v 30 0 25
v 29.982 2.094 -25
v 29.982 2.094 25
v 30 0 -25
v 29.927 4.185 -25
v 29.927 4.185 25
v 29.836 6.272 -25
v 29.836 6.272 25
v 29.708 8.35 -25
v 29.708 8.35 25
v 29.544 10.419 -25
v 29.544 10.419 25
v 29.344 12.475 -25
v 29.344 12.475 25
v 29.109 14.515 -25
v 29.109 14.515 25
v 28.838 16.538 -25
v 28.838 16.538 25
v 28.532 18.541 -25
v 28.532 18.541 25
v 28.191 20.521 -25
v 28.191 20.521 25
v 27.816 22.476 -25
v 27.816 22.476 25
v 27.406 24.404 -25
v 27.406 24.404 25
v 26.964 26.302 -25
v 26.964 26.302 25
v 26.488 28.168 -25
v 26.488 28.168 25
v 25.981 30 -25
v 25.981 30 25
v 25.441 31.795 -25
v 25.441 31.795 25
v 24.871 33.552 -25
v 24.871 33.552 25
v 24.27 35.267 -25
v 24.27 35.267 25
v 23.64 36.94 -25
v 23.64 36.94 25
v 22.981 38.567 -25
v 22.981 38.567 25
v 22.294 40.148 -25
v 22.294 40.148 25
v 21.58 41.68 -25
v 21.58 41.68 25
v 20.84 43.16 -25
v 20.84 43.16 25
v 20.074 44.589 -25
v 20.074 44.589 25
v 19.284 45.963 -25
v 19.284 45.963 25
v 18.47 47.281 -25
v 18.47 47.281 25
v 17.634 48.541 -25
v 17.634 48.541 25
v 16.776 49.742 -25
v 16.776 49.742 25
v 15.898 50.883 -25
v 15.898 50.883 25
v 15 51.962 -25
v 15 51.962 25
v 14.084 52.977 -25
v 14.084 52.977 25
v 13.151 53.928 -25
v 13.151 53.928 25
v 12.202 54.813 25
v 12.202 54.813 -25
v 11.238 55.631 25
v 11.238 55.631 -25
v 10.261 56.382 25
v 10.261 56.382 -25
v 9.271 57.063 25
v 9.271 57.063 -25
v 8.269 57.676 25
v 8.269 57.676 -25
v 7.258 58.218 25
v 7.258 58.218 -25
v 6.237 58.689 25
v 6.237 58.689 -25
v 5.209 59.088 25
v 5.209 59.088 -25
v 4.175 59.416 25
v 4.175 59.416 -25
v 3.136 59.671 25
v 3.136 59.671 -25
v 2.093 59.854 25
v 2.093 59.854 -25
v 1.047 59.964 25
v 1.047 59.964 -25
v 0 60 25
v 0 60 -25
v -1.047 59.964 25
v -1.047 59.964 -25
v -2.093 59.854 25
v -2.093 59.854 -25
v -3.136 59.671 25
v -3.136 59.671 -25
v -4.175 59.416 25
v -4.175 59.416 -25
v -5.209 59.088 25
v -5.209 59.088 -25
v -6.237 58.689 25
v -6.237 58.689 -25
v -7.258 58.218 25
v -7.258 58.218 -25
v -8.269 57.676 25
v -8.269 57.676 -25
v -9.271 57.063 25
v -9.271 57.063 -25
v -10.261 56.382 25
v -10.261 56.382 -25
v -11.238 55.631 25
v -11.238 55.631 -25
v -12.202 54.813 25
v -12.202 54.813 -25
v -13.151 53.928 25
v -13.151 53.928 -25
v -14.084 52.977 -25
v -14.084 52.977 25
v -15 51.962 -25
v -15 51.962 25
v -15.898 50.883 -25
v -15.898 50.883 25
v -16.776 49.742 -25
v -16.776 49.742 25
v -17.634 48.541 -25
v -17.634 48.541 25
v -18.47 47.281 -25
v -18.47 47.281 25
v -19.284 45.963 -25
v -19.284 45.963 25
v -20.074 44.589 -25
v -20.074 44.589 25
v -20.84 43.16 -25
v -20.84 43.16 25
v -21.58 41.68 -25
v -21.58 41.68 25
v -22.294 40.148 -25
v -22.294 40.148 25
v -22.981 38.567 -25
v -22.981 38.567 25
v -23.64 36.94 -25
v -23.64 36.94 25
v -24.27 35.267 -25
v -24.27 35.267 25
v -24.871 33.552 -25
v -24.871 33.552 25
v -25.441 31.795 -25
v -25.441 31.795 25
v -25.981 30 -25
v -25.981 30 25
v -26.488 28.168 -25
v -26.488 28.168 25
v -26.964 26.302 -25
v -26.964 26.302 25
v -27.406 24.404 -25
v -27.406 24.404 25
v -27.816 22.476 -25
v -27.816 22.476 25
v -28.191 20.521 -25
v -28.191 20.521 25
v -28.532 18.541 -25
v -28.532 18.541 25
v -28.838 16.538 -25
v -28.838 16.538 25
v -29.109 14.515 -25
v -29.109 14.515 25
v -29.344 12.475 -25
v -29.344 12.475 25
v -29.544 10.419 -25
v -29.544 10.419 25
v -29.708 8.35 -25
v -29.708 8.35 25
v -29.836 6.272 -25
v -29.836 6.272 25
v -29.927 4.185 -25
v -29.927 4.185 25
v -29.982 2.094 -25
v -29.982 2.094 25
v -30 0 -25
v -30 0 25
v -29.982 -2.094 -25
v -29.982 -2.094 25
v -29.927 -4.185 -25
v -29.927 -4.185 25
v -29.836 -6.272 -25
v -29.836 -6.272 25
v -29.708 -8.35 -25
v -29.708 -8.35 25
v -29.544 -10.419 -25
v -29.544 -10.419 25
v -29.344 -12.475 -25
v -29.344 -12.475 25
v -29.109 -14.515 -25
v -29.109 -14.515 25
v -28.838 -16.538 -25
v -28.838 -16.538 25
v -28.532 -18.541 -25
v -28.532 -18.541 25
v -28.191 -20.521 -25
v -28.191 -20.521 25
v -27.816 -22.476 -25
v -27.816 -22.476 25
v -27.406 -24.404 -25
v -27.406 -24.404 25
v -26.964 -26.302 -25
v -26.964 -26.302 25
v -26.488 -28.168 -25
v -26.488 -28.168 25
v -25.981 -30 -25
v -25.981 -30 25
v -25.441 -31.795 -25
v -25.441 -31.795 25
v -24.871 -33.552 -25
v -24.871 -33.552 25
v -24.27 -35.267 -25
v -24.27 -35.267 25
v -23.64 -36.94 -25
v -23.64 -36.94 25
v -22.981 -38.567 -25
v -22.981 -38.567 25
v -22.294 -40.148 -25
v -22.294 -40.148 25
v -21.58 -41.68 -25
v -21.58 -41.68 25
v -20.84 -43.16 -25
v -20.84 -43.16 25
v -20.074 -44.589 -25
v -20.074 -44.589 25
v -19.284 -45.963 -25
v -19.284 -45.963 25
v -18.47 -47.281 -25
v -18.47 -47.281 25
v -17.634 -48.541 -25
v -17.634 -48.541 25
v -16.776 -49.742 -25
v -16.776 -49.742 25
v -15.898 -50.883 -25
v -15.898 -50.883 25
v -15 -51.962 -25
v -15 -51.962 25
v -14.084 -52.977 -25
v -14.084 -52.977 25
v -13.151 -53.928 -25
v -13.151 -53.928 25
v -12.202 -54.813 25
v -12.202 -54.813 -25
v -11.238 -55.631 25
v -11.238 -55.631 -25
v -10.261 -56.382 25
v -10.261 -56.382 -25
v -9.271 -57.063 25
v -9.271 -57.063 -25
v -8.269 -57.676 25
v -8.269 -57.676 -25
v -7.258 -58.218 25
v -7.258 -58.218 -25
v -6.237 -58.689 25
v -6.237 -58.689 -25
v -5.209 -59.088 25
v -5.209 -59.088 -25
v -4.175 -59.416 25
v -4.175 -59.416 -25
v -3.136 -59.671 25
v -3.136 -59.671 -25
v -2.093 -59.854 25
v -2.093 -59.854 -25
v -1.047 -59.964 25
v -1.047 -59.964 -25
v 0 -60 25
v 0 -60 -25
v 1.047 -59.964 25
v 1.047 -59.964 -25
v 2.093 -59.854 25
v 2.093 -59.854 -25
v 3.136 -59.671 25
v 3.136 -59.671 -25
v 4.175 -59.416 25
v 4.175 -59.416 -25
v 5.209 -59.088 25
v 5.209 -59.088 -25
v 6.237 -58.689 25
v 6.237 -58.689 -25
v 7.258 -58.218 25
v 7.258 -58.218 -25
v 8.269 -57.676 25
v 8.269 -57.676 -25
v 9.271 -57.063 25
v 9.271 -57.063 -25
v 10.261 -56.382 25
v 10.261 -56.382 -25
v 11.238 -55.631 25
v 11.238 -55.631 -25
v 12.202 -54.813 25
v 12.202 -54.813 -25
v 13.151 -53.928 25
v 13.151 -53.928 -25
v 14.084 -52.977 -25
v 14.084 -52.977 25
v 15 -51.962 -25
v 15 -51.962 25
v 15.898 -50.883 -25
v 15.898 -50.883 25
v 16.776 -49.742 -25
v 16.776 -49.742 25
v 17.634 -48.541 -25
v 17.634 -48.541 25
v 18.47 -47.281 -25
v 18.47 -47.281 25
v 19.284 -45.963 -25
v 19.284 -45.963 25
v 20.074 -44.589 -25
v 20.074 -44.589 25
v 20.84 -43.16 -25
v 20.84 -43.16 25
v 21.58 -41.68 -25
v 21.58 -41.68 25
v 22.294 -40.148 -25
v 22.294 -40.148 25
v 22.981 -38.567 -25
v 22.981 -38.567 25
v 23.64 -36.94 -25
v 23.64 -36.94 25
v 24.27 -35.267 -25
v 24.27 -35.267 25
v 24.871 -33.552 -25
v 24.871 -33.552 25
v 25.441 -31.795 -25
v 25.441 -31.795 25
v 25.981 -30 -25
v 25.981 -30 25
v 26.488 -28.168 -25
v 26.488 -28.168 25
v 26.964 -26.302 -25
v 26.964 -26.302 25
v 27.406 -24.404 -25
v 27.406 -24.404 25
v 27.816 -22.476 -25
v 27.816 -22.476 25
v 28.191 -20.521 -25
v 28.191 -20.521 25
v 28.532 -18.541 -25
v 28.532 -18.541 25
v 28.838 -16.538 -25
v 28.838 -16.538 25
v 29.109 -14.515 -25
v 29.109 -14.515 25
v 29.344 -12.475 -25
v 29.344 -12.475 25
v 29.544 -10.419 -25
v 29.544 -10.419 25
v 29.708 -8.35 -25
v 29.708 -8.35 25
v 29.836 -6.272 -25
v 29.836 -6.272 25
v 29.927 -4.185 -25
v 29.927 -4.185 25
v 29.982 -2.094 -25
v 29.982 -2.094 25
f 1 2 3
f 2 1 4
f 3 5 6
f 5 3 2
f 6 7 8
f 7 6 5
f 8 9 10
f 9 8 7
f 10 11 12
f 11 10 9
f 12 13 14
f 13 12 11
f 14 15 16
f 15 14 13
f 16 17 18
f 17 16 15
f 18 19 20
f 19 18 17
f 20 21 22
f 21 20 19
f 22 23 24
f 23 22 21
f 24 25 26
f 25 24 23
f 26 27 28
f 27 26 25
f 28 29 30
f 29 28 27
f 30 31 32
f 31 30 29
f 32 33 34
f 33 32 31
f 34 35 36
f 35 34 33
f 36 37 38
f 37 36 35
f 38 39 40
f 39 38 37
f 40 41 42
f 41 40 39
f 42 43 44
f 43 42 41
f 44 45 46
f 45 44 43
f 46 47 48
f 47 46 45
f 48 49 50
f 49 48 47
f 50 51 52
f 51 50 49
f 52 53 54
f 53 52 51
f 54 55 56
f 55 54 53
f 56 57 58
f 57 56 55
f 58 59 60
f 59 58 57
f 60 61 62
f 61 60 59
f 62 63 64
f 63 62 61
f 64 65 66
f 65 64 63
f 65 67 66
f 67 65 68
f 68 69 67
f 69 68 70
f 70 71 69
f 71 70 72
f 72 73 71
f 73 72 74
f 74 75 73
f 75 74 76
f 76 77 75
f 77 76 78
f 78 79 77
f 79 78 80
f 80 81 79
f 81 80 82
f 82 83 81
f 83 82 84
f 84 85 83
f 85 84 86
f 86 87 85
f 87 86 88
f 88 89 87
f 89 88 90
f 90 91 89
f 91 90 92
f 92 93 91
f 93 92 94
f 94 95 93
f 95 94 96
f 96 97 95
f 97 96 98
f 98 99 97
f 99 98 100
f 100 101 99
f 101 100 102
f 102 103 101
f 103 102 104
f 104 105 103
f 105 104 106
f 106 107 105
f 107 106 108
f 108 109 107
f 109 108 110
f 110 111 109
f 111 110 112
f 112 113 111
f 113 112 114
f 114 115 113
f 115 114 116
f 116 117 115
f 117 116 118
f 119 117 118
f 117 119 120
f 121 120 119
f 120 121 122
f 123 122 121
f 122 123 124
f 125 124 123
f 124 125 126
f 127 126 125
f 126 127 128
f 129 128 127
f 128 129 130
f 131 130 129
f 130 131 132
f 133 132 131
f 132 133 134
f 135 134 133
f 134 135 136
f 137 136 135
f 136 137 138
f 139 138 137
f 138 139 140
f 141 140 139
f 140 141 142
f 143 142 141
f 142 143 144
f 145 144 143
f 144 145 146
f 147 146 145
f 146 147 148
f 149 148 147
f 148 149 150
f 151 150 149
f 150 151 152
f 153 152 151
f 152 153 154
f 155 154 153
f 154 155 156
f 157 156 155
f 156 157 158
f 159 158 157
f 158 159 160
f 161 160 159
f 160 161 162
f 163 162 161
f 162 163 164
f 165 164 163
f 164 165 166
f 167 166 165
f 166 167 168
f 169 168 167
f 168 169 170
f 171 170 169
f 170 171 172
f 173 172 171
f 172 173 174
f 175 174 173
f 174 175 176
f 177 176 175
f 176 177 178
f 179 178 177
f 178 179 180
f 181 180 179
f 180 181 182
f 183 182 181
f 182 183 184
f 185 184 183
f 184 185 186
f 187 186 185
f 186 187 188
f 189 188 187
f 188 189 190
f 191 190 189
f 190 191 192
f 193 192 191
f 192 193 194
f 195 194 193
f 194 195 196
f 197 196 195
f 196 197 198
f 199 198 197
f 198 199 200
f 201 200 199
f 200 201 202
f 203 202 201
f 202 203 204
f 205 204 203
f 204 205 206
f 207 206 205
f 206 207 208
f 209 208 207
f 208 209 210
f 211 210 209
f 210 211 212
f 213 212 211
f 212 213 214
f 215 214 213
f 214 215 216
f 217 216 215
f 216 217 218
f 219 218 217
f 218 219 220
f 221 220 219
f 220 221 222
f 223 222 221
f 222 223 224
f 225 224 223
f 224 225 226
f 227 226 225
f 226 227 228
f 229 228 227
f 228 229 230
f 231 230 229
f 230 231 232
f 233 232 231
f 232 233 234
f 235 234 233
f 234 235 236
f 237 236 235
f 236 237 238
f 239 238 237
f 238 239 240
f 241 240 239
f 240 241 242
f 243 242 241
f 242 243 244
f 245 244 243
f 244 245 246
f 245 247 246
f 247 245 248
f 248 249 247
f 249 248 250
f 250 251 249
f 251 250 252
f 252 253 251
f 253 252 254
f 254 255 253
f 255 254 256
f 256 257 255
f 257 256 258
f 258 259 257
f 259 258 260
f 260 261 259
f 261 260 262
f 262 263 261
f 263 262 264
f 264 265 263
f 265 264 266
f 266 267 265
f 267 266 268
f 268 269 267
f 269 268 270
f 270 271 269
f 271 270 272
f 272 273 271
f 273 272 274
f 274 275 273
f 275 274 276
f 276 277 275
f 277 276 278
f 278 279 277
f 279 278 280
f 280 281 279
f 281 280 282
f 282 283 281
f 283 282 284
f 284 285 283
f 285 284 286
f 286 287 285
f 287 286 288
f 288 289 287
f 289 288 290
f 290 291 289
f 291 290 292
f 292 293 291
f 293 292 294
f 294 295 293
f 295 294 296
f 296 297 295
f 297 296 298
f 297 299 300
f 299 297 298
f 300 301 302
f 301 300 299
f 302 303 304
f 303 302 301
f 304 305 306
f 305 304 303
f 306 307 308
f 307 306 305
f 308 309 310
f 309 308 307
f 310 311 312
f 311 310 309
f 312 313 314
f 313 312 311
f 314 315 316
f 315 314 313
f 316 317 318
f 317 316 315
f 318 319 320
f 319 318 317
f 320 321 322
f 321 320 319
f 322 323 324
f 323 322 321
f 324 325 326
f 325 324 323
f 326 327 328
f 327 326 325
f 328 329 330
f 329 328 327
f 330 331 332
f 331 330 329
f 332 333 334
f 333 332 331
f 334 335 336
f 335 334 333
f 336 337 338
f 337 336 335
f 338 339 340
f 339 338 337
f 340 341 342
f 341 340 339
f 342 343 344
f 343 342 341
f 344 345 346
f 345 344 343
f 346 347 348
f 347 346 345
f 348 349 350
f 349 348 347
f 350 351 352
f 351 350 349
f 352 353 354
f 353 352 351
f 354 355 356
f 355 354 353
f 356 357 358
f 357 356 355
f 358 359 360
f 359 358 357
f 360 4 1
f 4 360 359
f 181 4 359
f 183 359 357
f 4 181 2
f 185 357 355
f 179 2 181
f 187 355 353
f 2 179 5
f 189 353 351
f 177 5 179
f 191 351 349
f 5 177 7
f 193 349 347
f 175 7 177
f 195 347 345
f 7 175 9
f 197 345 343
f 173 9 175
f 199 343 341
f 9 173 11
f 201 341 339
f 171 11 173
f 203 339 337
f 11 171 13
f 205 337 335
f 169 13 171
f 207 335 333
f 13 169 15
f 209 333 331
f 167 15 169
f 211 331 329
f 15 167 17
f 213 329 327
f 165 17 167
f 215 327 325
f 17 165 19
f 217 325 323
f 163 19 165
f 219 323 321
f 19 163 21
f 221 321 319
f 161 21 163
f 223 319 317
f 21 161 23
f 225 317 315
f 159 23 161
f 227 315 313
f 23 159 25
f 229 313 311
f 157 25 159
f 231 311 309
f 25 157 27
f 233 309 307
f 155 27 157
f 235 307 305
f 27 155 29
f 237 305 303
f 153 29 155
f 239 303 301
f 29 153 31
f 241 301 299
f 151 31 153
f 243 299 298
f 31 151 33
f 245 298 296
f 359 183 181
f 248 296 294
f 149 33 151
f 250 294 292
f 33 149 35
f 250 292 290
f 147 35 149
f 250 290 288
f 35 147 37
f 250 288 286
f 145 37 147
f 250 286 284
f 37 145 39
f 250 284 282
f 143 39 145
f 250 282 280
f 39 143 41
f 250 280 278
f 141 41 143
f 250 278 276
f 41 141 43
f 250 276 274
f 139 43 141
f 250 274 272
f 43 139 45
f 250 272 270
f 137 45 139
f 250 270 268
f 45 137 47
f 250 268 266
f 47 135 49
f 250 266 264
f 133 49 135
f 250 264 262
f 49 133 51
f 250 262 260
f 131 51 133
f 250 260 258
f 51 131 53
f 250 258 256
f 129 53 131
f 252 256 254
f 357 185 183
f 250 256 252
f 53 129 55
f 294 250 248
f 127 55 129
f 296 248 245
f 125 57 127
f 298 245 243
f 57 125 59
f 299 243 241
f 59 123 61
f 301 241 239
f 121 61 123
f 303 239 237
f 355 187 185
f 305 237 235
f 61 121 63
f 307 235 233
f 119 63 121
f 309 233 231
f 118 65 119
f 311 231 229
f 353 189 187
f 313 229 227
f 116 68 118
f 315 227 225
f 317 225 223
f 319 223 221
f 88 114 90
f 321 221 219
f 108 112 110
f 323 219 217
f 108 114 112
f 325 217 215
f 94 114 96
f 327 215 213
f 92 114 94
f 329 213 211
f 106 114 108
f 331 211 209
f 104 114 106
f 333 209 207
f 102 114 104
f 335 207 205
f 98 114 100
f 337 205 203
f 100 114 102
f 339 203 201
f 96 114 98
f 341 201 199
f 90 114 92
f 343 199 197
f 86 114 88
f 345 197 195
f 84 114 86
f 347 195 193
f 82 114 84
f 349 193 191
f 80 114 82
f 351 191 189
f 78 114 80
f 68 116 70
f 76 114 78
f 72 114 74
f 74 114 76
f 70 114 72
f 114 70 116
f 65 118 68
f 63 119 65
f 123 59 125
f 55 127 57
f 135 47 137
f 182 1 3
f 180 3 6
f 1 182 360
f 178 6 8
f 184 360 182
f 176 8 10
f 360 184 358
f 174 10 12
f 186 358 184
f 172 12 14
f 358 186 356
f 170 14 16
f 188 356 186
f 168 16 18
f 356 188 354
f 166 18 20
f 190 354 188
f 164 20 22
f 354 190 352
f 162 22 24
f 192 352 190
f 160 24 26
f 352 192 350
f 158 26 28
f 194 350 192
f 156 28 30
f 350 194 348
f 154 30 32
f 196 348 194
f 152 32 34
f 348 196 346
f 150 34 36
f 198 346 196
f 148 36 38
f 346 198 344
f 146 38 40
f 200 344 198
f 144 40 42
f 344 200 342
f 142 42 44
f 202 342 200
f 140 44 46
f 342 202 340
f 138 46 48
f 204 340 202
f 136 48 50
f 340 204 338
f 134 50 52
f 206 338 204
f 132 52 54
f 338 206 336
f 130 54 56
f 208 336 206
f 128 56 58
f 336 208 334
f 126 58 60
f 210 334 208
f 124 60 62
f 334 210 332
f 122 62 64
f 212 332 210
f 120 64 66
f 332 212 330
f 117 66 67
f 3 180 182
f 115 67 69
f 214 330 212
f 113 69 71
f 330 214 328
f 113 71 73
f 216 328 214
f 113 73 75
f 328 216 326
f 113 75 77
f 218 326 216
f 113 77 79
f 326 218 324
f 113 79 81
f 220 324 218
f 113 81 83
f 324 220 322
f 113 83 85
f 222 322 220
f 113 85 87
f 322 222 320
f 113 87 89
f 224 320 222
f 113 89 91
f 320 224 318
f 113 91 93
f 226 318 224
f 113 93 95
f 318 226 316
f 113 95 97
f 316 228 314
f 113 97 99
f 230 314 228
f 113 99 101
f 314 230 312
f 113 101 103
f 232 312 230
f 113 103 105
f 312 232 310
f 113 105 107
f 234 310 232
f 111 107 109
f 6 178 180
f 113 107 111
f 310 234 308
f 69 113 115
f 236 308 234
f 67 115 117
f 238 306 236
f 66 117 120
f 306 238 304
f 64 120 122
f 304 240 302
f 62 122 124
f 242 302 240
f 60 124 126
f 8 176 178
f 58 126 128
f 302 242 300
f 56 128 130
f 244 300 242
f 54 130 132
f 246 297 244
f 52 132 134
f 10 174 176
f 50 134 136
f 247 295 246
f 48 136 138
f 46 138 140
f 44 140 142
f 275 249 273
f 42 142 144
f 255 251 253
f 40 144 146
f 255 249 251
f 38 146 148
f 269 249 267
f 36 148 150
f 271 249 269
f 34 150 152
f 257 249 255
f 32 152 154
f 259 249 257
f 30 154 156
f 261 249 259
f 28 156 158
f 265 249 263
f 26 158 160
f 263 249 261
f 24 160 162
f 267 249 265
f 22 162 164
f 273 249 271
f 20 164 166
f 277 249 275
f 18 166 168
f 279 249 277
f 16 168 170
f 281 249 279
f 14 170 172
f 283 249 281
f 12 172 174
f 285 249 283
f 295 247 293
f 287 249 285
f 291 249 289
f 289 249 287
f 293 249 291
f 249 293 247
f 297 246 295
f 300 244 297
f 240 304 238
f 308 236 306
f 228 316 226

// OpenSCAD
res = 180;
//res = 18;

//cylinder(h=1, r=116/2, center=true, $fn=res);

scale([1,2,1]) {
    cylinder(h=50, r=30, center=true, $fn=res);
}
